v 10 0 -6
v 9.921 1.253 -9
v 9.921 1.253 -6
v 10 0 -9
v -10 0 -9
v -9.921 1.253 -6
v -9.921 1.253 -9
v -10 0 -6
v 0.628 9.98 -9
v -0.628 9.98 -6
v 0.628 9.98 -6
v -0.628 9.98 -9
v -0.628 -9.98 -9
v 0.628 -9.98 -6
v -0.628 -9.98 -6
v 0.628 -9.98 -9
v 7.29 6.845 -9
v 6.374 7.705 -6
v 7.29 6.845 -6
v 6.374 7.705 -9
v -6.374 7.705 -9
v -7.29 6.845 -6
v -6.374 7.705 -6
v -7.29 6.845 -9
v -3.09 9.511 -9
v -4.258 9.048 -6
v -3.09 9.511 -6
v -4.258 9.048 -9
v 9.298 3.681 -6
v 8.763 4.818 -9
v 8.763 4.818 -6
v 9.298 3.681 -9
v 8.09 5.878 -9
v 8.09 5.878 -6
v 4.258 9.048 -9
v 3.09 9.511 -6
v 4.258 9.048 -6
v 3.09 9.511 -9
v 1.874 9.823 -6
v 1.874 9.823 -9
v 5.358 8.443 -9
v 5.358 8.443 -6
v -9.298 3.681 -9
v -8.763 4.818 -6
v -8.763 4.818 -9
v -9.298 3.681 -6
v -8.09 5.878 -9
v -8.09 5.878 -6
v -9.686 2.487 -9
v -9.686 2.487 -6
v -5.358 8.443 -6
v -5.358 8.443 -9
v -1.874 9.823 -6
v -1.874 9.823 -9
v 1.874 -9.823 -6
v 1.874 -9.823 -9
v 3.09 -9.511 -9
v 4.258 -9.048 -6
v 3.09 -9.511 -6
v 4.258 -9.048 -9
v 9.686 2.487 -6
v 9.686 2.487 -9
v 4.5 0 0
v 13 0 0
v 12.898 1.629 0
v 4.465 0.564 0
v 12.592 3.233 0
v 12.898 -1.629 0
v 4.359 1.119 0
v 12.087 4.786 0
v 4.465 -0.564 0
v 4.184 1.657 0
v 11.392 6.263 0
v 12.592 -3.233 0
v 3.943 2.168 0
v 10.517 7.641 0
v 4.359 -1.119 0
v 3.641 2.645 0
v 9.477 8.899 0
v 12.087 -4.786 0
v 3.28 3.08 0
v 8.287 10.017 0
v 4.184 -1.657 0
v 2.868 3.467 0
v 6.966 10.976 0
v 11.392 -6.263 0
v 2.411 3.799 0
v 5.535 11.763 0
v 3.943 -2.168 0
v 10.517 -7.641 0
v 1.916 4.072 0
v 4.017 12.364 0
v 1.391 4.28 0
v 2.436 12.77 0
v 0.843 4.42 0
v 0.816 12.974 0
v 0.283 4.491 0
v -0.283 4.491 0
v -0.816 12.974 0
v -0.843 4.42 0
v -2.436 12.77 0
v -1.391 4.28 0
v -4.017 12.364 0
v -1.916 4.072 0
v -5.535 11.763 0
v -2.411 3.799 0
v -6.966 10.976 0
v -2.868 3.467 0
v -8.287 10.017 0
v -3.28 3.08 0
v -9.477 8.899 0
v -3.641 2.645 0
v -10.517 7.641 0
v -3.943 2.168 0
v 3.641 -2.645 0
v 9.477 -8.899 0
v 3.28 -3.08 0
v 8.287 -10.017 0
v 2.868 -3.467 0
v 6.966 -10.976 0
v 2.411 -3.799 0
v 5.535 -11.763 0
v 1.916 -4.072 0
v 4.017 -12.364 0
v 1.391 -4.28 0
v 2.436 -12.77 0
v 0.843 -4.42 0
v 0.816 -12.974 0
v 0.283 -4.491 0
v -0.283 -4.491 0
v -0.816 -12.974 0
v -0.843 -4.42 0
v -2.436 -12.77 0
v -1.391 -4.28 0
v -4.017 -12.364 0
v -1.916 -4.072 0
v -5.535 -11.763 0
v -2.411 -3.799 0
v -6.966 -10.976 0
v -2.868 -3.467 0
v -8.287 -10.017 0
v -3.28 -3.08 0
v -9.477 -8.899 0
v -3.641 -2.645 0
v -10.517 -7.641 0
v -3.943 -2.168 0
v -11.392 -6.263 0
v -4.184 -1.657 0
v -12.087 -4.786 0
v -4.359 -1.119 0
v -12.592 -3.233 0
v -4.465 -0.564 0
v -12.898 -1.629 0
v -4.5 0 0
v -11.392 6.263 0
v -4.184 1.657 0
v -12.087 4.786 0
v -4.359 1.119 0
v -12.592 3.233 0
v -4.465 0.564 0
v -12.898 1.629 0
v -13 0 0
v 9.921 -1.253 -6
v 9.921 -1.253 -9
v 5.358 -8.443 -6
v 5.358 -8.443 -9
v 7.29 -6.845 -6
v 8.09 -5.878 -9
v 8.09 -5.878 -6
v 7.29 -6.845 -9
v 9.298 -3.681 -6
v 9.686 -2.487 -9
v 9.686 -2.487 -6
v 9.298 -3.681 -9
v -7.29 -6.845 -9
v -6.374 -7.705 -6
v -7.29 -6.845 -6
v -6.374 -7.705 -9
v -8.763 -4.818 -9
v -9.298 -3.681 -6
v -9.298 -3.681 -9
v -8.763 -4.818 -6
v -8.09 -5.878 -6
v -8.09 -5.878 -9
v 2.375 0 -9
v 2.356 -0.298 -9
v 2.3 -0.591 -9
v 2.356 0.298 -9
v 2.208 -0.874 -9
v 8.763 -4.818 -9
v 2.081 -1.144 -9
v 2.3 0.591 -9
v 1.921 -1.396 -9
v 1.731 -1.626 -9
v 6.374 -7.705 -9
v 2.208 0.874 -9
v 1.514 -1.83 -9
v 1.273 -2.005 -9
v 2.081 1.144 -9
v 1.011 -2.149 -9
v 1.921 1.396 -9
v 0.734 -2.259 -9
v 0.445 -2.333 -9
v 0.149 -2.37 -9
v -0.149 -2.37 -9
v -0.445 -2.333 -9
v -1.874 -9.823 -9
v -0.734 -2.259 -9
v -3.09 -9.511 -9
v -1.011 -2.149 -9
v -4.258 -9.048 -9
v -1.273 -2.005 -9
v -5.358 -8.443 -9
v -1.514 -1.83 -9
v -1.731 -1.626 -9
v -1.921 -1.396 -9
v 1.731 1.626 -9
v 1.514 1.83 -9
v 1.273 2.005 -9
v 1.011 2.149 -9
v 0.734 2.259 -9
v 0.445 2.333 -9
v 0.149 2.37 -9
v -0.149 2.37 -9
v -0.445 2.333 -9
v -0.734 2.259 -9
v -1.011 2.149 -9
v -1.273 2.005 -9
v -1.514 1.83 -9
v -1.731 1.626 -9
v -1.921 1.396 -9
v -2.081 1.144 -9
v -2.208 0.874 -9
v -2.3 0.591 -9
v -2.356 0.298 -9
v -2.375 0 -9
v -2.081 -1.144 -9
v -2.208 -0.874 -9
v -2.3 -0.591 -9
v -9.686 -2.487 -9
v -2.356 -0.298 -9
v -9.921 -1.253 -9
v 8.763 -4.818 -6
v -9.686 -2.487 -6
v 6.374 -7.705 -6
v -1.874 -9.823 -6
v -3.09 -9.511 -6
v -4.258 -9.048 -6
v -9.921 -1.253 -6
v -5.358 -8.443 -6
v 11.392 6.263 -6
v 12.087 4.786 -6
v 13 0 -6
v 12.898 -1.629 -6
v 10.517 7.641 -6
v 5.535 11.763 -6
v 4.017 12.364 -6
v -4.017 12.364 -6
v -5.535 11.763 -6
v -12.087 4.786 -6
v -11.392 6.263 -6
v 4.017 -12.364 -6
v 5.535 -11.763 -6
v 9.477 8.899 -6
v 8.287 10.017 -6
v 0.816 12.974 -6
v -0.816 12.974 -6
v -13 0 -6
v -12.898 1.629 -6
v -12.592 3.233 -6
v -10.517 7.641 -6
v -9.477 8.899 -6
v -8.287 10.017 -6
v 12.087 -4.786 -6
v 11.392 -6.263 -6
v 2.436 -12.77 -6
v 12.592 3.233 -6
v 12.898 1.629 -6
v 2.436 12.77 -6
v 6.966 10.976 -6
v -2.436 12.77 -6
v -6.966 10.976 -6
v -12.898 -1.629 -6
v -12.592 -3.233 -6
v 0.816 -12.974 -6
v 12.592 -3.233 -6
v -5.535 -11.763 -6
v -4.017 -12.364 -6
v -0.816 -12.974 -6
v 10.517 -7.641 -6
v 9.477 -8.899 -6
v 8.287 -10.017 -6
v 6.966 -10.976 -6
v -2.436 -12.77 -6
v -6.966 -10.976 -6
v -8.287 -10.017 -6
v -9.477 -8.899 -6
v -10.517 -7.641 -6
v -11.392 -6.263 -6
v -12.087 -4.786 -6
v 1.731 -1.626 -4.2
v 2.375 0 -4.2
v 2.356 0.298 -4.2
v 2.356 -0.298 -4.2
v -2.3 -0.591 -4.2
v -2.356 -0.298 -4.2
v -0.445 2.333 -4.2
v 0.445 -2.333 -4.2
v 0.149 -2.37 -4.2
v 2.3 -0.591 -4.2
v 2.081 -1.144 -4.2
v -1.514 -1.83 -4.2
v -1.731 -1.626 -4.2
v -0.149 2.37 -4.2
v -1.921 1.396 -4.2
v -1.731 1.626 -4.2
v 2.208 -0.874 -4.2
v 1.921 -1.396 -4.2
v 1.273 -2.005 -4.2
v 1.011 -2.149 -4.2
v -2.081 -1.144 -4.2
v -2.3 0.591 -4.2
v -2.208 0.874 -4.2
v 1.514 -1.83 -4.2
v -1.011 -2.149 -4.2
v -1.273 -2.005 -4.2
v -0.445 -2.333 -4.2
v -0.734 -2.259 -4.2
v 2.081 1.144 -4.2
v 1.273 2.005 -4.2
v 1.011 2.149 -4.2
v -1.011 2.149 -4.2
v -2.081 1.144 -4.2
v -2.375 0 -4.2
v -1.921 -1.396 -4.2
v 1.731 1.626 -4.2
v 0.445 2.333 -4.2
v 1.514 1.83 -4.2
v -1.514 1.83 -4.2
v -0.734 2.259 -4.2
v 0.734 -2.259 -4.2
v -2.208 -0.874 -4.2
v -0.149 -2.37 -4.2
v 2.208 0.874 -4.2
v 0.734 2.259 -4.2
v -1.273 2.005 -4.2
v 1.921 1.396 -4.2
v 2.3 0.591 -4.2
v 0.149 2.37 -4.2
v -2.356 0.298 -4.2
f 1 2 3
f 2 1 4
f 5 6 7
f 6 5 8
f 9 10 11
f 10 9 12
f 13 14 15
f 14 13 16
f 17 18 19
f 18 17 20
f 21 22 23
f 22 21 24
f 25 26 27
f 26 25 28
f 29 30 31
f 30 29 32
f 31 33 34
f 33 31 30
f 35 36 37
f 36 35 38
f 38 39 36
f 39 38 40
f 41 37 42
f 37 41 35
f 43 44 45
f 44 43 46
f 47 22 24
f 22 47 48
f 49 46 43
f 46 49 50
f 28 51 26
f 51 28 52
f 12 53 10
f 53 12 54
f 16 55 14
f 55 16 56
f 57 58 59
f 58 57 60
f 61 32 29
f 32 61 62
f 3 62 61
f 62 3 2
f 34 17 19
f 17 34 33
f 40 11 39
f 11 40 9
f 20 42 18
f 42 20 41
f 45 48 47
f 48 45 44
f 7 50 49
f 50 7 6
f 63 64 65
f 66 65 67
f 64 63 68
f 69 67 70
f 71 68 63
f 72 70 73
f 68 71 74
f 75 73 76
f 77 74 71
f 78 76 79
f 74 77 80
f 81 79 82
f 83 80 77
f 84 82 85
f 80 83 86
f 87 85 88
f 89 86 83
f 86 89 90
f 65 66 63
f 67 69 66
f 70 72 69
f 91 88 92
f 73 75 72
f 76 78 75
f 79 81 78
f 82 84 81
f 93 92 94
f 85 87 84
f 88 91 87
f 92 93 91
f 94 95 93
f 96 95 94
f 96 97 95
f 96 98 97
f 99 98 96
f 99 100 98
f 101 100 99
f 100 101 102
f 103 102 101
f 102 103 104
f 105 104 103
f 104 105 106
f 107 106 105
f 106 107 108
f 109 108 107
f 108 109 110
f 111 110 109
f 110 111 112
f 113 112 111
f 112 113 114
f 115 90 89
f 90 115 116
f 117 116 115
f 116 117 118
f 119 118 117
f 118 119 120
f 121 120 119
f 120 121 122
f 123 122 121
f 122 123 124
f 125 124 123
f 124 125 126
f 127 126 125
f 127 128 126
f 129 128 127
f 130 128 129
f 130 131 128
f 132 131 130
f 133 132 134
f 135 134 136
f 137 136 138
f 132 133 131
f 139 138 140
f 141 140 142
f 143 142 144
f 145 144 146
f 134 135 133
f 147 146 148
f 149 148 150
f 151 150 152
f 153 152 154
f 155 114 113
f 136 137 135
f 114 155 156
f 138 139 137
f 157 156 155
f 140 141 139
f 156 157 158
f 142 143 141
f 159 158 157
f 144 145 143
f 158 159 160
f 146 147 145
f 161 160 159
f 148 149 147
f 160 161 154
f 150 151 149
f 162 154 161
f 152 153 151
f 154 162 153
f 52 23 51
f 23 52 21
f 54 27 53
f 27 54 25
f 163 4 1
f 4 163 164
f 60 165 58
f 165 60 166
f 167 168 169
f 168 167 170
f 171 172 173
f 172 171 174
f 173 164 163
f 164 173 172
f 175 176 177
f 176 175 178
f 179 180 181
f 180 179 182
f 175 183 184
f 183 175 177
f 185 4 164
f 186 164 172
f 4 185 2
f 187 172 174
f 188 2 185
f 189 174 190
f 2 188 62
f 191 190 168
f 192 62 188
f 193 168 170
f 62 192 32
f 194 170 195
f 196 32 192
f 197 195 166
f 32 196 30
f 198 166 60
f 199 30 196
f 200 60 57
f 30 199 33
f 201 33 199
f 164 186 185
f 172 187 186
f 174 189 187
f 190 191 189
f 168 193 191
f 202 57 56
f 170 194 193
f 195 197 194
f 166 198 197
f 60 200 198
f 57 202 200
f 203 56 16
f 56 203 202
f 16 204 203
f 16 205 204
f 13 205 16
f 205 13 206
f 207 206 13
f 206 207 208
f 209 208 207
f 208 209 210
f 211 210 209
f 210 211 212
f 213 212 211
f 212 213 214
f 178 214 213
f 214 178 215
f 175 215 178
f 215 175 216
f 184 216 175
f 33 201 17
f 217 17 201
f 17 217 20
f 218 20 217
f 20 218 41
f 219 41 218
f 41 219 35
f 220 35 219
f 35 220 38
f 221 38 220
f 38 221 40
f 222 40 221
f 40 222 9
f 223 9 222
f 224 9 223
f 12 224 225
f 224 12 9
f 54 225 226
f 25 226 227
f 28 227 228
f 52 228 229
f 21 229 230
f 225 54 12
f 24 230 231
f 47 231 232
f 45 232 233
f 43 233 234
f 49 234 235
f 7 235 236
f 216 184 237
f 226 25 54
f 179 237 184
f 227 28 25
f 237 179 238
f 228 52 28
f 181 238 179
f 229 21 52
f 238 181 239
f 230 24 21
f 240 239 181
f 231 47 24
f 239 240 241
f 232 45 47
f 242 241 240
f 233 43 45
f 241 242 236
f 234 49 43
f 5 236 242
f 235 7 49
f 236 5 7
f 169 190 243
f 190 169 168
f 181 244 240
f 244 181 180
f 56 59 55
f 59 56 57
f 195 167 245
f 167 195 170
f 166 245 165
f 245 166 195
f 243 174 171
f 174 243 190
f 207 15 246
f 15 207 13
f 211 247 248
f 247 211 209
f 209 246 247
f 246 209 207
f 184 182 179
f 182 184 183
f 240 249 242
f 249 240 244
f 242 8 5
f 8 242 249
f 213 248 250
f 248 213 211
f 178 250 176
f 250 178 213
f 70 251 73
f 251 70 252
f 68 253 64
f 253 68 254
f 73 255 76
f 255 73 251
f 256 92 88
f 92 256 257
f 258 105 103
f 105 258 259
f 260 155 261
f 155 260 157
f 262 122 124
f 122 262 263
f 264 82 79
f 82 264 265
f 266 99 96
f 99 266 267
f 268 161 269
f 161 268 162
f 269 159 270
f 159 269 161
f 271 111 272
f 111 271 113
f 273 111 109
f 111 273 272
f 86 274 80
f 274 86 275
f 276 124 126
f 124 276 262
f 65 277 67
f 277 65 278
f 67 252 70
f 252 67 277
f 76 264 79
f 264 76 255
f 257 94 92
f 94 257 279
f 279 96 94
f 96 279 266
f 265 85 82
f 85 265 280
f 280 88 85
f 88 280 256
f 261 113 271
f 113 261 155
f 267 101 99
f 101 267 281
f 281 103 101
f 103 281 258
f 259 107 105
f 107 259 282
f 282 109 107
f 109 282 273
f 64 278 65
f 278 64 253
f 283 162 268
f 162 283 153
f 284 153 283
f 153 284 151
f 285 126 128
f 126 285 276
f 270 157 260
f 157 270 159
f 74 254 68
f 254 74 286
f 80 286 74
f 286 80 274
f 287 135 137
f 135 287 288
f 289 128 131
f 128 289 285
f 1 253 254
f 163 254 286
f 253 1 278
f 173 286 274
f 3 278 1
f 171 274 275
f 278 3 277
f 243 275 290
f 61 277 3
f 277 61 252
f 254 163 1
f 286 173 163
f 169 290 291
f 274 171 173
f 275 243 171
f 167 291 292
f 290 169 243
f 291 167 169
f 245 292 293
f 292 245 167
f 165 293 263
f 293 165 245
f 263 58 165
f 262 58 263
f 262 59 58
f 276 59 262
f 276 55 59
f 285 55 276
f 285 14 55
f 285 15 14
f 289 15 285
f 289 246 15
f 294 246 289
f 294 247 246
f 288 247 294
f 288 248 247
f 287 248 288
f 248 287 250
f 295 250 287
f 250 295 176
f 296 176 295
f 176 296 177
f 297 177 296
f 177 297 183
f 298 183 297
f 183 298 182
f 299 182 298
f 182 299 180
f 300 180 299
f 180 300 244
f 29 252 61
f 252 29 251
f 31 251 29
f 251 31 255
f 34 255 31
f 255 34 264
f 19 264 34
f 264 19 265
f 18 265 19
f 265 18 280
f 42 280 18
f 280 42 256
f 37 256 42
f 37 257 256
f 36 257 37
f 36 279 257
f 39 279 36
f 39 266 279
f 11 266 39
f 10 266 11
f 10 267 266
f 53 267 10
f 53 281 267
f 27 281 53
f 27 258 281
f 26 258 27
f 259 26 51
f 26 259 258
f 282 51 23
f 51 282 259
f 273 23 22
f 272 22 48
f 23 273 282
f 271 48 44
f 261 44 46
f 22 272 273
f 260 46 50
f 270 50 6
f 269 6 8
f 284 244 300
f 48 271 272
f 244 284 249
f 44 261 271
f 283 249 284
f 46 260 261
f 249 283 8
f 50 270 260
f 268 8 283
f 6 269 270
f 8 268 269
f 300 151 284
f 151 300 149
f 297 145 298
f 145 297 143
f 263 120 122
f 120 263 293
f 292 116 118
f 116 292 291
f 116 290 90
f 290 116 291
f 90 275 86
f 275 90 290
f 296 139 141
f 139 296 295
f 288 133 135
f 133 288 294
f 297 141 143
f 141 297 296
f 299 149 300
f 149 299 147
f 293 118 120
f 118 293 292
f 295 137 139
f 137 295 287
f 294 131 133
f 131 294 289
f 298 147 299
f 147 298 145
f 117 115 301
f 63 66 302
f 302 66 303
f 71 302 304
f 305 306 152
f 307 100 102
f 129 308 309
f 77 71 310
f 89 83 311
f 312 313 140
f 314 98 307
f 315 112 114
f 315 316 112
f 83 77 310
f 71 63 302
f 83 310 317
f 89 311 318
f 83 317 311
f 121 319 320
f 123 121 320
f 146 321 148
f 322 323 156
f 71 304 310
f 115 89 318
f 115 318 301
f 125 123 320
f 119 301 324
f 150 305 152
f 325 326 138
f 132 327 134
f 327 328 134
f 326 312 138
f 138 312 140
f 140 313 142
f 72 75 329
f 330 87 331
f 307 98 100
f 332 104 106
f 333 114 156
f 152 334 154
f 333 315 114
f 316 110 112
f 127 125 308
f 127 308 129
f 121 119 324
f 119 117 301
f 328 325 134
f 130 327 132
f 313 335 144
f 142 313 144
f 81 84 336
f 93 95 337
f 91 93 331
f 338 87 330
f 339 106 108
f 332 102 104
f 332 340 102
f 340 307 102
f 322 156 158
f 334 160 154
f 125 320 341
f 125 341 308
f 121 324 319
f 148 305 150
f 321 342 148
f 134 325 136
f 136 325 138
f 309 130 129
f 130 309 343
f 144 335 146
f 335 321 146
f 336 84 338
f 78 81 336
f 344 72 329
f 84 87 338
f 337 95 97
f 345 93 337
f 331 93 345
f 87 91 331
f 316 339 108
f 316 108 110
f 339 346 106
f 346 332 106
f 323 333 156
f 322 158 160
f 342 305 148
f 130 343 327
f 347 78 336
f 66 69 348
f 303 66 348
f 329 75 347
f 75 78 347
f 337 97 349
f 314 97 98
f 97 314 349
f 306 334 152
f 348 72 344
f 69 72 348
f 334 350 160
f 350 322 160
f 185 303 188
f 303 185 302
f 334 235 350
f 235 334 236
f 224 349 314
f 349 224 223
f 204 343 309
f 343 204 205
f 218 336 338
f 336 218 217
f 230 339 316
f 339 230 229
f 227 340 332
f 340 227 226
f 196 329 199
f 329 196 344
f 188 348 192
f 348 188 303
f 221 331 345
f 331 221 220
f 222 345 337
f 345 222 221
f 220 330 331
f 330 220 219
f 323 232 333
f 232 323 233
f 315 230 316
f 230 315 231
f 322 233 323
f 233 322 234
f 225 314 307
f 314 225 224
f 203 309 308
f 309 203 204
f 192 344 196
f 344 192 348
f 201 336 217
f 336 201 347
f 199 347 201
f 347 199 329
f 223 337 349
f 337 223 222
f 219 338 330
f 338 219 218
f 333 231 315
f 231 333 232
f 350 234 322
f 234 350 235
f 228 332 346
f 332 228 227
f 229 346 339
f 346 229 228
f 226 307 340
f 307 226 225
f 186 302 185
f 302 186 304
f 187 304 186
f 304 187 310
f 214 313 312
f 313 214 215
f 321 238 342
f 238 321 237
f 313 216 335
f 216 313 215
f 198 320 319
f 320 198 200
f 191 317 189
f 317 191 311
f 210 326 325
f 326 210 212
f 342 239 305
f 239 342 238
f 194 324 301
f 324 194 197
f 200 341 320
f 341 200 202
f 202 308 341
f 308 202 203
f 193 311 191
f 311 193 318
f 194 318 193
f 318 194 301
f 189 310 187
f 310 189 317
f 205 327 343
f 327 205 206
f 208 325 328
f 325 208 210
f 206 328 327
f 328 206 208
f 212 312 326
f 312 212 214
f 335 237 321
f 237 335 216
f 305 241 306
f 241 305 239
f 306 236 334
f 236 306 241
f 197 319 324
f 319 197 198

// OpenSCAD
$fn = 50;


difference() {
	union() {
		translate(v = [0, 0, -9.0000000000]) {
			cylinder(h = 9, r = 10.0000000000);
		}
		translate(v = [0, 0, -6.0000000000]) {
			cylinder(h = 6, r = 13.0000000000);
		}
	}
	union() {
		translate(v = [0, 0, 0]) {
			rotate(a = [0, 0, 0]) {
				difference() {
					union() {
						#translate(v = [0, 0, -9.0000000000]) {
							cylinder(h = 9, r = 2.2500000000);
						}
						#translate(v = [0, 0, -4.2000000000]) {
							cylinder(h = 4.2000000000, r = 10.0000000000, r1 = 2.3750000000, r2 = 4.5000000000);
						}
						#translate(v = [0, 0, -9.0000000000]) {
							cylinder(h = 9, r = 2.3750000000);
						}
						#translate(v = [0, 0, -9.0000000000]) {
							cylinder(h = 9, r = 2.2500000000);
						}
					}
					union();
				}
			}
		}
	}
}
